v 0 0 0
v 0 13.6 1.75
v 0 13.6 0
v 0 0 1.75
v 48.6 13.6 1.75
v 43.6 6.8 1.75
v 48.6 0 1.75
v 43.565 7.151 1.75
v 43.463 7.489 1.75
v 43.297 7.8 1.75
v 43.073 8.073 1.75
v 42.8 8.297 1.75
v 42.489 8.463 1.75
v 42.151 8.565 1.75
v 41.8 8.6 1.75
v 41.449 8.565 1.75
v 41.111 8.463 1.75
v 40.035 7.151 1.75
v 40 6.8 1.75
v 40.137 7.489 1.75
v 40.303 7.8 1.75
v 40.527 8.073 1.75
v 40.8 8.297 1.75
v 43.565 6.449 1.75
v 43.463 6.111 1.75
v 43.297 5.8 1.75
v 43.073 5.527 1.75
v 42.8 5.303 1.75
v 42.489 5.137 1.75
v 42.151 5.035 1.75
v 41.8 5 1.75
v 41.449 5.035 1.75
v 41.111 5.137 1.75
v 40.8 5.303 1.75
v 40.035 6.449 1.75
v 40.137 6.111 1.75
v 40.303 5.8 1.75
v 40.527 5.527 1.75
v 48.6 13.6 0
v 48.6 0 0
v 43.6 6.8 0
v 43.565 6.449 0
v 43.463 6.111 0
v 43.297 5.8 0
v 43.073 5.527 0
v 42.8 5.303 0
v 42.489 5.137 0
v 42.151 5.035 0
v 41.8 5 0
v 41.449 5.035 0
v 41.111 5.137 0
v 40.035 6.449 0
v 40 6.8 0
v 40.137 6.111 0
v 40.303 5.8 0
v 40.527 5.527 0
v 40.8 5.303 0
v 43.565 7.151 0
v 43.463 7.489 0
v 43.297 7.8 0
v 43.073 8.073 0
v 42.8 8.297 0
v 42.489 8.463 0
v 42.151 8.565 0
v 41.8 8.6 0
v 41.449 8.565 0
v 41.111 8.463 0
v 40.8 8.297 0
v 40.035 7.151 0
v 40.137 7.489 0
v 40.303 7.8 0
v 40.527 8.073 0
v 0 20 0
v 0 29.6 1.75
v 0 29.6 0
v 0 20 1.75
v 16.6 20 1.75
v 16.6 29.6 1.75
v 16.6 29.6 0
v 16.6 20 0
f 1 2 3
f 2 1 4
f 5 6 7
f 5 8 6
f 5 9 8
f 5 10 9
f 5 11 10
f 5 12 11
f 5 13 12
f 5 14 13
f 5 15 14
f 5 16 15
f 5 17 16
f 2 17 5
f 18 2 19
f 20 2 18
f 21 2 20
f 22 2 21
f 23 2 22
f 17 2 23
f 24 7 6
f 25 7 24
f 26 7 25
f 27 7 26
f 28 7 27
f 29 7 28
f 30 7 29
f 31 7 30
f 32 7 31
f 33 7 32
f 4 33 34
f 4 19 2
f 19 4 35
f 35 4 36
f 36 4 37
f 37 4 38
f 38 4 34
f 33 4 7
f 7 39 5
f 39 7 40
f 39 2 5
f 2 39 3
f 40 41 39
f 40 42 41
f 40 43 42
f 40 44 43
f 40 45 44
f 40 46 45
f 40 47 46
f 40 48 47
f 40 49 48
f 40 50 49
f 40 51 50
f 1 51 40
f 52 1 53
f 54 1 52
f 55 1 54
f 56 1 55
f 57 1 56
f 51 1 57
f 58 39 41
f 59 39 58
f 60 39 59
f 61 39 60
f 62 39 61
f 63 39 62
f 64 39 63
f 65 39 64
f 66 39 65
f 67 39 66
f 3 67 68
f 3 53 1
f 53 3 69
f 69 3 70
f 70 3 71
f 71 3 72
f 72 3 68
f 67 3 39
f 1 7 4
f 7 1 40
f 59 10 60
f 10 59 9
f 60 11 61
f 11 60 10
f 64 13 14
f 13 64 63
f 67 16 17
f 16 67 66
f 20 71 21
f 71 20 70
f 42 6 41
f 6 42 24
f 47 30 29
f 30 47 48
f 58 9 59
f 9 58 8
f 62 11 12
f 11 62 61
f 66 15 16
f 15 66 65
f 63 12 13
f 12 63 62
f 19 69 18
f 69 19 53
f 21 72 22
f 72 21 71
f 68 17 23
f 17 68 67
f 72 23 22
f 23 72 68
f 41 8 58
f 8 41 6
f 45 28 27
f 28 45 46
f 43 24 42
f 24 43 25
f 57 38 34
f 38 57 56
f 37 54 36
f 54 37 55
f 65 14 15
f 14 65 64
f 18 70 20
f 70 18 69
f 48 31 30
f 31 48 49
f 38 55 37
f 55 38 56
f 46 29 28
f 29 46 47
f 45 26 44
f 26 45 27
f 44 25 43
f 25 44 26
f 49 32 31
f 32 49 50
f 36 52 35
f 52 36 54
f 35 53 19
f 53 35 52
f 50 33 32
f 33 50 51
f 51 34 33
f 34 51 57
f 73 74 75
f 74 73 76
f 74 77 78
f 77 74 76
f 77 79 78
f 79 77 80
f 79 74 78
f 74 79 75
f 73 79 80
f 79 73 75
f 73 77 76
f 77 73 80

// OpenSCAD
// Joint parts for nozzle changer
// by Genie Kibayashi, July 2016

$fn = 32;
M3 = 3.6;
thickness = 1.75;

difference(){
cube([49-0.4,14-0.4,thickness]);
translate([41.8,6.8,-4])  cylinder(h=10, r=M3/2);
}

translate([0,20,0])
cube([17-0.4,10-0.4,thickness]);
